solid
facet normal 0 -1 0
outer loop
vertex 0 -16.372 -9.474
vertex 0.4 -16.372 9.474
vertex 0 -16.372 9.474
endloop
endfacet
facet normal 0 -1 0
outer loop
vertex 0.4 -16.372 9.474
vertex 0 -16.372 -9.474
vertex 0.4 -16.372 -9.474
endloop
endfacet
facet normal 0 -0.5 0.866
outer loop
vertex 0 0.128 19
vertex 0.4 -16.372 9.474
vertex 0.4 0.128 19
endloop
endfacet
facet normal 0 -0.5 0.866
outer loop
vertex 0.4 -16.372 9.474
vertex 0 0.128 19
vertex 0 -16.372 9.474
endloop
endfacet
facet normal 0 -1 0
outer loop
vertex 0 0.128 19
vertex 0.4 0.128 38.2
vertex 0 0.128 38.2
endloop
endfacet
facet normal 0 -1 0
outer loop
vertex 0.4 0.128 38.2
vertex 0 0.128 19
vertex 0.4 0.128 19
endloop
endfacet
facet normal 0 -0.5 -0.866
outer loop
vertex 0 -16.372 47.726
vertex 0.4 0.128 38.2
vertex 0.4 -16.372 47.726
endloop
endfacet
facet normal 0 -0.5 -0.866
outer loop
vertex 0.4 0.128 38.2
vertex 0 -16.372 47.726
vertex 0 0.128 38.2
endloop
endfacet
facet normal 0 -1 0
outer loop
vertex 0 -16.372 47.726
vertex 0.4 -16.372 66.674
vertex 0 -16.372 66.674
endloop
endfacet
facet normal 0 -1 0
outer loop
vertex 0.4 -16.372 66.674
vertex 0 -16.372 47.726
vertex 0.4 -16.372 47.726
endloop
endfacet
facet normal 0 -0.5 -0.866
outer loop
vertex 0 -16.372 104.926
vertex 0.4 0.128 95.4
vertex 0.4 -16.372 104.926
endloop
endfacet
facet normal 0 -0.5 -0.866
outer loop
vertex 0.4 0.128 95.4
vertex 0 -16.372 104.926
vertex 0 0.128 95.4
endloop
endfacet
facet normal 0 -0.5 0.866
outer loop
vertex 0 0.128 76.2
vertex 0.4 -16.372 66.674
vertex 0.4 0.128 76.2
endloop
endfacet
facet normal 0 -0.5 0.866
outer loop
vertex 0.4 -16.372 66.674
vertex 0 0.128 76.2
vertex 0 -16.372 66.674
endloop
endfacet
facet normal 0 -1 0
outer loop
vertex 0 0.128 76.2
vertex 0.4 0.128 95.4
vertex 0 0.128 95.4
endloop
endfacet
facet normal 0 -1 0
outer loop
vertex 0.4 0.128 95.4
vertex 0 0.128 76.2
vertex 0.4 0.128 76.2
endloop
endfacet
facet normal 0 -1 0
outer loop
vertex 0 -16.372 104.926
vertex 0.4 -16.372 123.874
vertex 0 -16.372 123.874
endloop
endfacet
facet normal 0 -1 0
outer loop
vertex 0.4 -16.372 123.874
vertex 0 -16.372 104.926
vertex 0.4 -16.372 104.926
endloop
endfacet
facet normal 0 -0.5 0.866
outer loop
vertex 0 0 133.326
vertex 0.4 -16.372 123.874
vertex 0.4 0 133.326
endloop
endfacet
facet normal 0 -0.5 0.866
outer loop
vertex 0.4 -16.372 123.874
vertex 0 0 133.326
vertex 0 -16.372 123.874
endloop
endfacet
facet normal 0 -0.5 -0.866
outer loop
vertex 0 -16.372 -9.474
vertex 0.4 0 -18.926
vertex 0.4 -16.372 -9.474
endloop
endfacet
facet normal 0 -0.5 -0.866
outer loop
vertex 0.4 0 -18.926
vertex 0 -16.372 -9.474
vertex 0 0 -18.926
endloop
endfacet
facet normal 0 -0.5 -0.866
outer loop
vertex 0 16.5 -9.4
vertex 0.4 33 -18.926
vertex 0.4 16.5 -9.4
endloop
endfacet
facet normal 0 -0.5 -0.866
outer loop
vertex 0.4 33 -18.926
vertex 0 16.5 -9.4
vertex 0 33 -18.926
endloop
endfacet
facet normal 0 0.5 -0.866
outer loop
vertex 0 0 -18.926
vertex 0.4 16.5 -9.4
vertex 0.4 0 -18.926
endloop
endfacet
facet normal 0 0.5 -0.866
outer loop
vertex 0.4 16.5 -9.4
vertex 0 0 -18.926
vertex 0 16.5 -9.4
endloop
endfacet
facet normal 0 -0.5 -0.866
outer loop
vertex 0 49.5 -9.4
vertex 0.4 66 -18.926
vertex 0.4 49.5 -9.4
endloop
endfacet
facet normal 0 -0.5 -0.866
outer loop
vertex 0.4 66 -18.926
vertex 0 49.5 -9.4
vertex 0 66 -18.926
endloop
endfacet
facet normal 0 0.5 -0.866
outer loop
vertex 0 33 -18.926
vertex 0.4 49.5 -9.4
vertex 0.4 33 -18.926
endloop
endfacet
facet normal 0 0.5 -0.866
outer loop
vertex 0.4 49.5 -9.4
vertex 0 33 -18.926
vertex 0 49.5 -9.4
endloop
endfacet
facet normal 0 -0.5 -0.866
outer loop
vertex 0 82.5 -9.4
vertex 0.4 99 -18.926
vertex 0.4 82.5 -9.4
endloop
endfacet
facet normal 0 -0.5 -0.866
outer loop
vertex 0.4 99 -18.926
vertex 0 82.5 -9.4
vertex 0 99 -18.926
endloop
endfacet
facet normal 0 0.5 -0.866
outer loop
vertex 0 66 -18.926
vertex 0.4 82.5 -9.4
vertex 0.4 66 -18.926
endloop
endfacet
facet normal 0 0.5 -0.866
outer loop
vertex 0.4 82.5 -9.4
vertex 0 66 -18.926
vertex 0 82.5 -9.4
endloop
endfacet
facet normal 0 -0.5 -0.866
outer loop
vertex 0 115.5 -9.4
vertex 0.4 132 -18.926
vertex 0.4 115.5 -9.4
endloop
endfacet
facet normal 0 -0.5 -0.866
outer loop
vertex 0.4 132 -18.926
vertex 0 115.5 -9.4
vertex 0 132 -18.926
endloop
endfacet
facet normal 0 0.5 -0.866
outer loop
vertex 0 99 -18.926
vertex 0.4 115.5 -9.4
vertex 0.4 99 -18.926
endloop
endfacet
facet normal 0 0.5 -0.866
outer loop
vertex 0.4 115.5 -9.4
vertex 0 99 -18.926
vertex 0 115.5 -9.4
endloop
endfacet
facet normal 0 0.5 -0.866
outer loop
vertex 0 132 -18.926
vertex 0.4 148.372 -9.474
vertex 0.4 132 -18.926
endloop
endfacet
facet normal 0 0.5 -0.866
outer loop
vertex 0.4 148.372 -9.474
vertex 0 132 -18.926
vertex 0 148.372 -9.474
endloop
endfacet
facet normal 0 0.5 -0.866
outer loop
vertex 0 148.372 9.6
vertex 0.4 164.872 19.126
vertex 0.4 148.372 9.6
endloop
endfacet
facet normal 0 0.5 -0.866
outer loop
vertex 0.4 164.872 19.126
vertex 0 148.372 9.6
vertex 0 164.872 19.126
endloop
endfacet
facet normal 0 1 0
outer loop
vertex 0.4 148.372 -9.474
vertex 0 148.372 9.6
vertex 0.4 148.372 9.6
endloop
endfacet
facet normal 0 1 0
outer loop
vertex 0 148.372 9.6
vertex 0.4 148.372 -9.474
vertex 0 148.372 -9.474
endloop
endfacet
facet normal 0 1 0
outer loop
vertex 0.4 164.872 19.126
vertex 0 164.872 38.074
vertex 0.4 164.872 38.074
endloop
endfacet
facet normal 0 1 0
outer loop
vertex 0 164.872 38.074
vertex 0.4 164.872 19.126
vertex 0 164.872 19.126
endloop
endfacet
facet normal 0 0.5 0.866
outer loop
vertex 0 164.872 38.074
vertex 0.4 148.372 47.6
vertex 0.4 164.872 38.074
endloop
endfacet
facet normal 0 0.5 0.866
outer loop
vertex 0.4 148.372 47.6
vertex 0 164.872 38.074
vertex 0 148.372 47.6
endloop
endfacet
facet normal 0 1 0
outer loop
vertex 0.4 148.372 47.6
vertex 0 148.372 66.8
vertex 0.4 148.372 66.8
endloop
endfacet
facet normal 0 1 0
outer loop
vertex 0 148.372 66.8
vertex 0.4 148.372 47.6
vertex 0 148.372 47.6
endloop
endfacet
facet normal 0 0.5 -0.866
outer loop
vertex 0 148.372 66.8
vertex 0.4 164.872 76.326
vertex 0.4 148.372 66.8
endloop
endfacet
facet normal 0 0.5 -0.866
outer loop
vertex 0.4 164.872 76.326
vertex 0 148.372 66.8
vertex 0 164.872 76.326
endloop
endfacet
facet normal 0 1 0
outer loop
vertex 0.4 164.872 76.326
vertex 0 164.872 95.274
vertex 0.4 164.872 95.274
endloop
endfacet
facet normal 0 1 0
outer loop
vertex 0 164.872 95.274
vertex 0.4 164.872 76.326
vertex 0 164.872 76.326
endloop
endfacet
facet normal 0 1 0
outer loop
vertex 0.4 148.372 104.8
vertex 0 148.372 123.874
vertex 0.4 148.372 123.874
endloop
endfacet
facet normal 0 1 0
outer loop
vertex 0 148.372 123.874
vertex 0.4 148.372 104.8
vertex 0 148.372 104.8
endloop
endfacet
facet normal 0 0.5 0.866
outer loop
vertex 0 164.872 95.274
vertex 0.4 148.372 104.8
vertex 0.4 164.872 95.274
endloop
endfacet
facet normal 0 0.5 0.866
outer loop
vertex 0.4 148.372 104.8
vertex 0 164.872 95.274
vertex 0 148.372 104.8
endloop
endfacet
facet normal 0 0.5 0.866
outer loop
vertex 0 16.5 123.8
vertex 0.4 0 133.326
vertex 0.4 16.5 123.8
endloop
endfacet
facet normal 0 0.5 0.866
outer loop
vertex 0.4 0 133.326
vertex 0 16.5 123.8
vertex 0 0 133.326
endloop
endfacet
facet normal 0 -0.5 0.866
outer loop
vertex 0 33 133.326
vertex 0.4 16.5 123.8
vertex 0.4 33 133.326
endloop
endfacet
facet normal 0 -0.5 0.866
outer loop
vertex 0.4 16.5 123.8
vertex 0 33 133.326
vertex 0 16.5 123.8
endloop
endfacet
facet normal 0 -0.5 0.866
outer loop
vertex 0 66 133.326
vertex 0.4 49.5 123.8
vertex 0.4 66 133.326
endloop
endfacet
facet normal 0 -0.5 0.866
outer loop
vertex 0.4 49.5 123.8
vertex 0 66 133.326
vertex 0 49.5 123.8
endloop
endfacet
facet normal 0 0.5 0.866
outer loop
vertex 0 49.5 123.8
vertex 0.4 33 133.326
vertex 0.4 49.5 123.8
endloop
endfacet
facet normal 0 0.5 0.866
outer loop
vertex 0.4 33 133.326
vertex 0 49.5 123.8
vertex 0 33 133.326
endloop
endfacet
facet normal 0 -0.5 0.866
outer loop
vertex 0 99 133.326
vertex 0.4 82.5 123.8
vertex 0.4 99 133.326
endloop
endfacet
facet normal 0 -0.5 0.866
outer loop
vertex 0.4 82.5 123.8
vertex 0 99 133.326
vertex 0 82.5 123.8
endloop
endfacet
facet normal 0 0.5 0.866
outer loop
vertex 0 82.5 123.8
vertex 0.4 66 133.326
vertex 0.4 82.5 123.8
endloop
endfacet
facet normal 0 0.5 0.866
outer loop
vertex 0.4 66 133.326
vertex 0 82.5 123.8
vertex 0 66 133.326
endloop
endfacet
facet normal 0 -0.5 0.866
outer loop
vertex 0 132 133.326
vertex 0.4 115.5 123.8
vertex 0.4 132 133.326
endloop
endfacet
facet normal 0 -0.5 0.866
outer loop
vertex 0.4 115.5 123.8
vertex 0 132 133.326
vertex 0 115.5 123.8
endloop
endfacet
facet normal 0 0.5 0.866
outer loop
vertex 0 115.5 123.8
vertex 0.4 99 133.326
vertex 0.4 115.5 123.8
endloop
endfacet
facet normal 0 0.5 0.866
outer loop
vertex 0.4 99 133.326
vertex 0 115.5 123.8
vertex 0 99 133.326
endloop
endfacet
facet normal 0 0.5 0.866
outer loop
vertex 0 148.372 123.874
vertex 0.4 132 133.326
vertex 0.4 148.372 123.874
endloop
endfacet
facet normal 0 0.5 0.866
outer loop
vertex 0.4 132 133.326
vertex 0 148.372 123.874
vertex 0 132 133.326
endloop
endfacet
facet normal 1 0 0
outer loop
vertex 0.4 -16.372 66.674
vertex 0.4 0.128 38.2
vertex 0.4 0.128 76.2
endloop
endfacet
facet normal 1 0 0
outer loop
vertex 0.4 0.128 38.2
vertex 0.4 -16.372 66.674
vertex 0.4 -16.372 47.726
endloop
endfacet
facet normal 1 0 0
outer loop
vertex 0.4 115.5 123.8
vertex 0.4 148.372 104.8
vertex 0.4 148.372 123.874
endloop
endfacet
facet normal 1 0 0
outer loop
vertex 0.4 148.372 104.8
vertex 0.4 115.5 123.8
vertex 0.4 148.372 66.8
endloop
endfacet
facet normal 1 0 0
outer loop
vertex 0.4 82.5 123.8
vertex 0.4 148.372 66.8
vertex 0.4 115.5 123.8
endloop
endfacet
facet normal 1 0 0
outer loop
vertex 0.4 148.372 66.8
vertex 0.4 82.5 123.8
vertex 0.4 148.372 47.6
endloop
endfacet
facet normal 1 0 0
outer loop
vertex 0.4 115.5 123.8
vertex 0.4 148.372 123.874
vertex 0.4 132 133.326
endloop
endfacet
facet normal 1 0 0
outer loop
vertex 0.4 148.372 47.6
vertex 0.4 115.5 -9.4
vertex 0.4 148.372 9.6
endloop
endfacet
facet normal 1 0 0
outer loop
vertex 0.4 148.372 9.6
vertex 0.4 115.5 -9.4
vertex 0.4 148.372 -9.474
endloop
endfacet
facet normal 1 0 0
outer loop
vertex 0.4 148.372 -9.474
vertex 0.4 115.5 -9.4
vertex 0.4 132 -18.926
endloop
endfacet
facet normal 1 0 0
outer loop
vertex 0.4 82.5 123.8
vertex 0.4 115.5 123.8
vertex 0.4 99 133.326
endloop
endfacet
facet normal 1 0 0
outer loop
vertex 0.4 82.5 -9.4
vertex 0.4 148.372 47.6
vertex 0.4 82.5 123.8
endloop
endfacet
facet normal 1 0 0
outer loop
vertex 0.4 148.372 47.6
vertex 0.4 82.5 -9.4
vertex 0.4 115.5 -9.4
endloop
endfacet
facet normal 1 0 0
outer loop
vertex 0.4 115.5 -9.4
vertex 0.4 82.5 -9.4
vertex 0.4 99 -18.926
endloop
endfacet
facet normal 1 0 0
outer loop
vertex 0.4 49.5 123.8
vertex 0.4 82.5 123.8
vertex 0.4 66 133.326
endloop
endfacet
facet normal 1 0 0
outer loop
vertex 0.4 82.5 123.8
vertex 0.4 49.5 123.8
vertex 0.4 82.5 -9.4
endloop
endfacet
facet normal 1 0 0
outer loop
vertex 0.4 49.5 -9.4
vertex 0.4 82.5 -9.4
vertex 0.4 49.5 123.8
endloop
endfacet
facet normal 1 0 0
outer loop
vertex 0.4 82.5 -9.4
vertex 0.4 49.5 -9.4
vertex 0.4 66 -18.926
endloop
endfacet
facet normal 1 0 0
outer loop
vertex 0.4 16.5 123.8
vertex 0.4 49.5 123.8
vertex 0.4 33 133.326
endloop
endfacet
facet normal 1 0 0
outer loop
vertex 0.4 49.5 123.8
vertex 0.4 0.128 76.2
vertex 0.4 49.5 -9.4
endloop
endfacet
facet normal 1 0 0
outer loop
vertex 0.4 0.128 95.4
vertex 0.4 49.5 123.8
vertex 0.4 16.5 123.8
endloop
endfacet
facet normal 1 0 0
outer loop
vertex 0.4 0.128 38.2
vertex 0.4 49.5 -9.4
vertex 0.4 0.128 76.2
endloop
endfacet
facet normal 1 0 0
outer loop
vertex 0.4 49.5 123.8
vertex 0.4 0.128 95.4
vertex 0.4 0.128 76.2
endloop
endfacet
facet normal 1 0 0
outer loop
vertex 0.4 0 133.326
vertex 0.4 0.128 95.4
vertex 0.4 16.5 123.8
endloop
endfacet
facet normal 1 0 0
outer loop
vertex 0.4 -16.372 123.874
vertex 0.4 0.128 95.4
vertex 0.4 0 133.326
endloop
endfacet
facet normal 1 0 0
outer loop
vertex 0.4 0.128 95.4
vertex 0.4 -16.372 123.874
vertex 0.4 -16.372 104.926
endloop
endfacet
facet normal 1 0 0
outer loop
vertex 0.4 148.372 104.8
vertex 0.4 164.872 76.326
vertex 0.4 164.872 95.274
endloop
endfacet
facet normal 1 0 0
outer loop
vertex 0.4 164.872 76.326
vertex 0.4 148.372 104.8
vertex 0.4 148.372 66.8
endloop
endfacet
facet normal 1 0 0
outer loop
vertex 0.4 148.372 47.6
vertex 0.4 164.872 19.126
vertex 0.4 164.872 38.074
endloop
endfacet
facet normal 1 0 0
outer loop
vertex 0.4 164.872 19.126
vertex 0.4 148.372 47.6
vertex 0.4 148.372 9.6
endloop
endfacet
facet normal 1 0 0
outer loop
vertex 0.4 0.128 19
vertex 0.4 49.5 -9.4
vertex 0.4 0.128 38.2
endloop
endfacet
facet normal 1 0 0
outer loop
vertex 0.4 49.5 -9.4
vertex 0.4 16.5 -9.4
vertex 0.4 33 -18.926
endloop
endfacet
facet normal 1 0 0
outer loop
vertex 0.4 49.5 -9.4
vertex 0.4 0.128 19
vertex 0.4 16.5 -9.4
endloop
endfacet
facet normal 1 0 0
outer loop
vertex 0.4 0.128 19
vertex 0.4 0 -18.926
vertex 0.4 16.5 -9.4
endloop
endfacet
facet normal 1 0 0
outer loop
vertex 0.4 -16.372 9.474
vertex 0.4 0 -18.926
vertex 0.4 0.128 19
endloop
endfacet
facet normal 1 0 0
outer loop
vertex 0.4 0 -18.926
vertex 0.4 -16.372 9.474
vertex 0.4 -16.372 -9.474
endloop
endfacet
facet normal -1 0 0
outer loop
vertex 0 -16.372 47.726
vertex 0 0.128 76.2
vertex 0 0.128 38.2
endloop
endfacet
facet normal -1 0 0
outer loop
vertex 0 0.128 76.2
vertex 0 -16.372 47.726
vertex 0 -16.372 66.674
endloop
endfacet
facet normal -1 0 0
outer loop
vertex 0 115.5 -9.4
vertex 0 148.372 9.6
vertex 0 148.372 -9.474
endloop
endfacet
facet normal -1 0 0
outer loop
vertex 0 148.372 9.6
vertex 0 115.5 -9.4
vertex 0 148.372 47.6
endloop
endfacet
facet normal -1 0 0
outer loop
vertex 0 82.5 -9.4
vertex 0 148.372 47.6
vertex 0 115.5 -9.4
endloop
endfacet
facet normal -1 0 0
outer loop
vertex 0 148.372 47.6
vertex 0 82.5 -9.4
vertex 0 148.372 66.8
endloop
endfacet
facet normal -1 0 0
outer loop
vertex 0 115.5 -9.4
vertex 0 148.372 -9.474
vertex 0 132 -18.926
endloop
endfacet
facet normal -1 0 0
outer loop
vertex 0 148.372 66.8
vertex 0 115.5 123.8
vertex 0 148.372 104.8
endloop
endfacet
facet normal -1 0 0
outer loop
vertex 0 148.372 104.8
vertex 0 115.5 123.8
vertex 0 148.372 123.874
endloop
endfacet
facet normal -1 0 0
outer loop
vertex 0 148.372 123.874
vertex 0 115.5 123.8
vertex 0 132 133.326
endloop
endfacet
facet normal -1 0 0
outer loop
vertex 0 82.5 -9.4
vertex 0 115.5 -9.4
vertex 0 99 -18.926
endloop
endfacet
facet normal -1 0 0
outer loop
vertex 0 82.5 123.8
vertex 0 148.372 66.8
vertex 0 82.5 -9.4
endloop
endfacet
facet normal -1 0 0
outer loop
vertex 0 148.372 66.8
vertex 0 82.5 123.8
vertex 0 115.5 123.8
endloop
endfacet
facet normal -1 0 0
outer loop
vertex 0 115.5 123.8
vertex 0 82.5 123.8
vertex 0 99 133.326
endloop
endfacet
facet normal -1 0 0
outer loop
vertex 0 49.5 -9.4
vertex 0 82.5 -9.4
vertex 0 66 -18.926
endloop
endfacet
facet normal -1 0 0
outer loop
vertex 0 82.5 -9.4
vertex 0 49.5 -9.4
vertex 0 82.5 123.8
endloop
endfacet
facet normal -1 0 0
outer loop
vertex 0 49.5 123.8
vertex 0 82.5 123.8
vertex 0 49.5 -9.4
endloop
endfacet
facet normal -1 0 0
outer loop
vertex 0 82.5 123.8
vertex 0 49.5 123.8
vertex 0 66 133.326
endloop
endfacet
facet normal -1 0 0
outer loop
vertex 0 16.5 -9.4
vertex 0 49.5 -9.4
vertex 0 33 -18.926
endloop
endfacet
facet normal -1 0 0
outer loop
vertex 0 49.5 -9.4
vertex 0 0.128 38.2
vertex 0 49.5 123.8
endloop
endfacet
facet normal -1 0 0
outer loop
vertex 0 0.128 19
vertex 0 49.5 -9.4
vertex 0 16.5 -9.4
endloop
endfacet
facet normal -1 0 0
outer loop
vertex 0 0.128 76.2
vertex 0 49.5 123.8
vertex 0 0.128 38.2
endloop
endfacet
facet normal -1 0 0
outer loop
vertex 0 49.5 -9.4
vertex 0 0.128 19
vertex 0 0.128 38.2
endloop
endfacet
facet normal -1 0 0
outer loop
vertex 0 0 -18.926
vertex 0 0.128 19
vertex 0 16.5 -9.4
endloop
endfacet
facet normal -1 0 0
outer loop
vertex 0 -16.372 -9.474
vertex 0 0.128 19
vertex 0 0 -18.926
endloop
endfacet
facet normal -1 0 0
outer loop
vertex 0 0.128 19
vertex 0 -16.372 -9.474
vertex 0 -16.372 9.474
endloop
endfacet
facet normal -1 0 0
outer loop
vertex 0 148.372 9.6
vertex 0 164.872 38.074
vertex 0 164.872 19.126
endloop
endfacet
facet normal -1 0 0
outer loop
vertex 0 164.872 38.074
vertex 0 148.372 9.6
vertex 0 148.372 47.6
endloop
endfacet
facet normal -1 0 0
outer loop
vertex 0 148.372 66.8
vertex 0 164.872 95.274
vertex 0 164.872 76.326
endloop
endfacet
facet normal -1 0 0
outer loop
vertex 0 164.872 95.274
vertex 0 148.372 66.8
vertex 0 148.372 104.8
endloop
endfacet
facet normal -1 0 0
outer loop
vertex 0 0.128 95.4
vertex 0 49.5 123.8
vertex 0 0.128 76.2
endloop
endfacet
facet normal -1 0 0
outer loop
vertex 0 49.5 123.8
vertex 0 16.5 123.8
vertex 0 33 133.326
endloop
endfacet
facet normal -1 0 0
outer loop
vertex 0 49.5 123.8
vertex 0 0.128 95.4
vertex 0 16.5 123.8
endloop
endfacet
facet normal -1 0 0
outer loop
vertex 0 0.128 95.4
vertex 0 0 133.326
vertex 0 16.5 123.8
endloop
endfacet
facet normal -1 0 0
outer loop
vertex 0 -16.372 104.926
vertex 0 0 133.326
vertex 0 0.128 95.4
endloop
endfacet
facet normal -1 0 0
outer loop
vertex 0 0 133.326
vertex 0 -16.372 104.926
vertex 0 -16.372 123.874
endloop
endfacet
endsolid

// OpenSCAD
$fn=200;

length = 75;
width= 20;
height = 45;

wall=4;

hole_offset_left=33;
hole_offset_height=10;
box_width=2;

// Radius pipe with leds
ir1=16.8/2;
// Height for initial increase
ih1=30;
// Height to keep stable until end of leds
ih2=40;
// Hole radius to be cut later by manual tools
hr1=0.5;

// Position for microcontroller housing
mcr=22.4/2;

// Length for microcontroller hole
mch=60+5;

// Battery radius
br=18.8;
// Battery height
bh=15;

dist=33;
   
cbr=br*2;

difference() {
    translate([0,-20,-20]) cube(size=[0.4,185,160]);
    outside();
}


module board() {
    difference() {

        translate([0,0,0]) {
            for ( i = [0 : 4] ){
                for ( j = [0 : 4] ){
                    translate([0,i*dist+(dist/2*(j%2)),j*28.6]){
                        difference() {
                            translate([0,0,0]) rotate([0,90,0]) cylinder(r=br+0.4,h=bh, $fn=6);
                            translate([-0.4,0,0]) rotate([0,90,0]) cylinder(r=br-0.4,h=bh, $fn=6);
                        }
                    }
                }
            }
        }
        outside();
    }
}


module outside()
{
    translate([-10,0,0]) {
        for ( i = [-1 : -1] ){
            for ( j = [-1 : 5] ){
                translate([0,i*dist+(dist/2*(j%2)),j*28.6]){
                    difference() {
                        translate([0,0,0]) rotate([0,90,0]) cylinder(r=br+0.4,h=bh+10, $fn=6);
                    }
                }
            }
        }
    }

    translate([-10,0,0]) {
        for ( i = [-1 : 5] ){
            for ( j = [-1 : -1] ){
                translate([0,i*dist+(dist/2*(j%2)),j*28.6]){
                    difference() {
                        translate([0,0,0]) rotate([0,90,0]) cylinder(r=br+0.4,h=bh+10, $fn=6);
                    }
                }
            }
        }
    }

    translate([-10,0,0]) {
        for ( i = [5 : 5] ){
            for ( j = [-1 : 5] ){
                translate([0,i*dist+(dist/2*(j%2)),j*28.6]){
                    difference() {
                        translate([0,0,0]) rotate([0,90,0]) cylinder(r=br+0.4,h=bh+10, $fn=6);
                    }
                }
            }
        }
    }

    translate([-10,0,0]) {
        for ( i = [-1 : 5] ){
            for ( j = [5 : 5] ){
                translate([0,i*dist+(dist/2*(j%2)),j*28.6]){
                    difference() {
                        translate([0,0,0]) rotate([0,90,0]) cylinder(r=br+0.4,h=bh+10, $fn=6);
                    }
                }
            }
        }
    }
}
